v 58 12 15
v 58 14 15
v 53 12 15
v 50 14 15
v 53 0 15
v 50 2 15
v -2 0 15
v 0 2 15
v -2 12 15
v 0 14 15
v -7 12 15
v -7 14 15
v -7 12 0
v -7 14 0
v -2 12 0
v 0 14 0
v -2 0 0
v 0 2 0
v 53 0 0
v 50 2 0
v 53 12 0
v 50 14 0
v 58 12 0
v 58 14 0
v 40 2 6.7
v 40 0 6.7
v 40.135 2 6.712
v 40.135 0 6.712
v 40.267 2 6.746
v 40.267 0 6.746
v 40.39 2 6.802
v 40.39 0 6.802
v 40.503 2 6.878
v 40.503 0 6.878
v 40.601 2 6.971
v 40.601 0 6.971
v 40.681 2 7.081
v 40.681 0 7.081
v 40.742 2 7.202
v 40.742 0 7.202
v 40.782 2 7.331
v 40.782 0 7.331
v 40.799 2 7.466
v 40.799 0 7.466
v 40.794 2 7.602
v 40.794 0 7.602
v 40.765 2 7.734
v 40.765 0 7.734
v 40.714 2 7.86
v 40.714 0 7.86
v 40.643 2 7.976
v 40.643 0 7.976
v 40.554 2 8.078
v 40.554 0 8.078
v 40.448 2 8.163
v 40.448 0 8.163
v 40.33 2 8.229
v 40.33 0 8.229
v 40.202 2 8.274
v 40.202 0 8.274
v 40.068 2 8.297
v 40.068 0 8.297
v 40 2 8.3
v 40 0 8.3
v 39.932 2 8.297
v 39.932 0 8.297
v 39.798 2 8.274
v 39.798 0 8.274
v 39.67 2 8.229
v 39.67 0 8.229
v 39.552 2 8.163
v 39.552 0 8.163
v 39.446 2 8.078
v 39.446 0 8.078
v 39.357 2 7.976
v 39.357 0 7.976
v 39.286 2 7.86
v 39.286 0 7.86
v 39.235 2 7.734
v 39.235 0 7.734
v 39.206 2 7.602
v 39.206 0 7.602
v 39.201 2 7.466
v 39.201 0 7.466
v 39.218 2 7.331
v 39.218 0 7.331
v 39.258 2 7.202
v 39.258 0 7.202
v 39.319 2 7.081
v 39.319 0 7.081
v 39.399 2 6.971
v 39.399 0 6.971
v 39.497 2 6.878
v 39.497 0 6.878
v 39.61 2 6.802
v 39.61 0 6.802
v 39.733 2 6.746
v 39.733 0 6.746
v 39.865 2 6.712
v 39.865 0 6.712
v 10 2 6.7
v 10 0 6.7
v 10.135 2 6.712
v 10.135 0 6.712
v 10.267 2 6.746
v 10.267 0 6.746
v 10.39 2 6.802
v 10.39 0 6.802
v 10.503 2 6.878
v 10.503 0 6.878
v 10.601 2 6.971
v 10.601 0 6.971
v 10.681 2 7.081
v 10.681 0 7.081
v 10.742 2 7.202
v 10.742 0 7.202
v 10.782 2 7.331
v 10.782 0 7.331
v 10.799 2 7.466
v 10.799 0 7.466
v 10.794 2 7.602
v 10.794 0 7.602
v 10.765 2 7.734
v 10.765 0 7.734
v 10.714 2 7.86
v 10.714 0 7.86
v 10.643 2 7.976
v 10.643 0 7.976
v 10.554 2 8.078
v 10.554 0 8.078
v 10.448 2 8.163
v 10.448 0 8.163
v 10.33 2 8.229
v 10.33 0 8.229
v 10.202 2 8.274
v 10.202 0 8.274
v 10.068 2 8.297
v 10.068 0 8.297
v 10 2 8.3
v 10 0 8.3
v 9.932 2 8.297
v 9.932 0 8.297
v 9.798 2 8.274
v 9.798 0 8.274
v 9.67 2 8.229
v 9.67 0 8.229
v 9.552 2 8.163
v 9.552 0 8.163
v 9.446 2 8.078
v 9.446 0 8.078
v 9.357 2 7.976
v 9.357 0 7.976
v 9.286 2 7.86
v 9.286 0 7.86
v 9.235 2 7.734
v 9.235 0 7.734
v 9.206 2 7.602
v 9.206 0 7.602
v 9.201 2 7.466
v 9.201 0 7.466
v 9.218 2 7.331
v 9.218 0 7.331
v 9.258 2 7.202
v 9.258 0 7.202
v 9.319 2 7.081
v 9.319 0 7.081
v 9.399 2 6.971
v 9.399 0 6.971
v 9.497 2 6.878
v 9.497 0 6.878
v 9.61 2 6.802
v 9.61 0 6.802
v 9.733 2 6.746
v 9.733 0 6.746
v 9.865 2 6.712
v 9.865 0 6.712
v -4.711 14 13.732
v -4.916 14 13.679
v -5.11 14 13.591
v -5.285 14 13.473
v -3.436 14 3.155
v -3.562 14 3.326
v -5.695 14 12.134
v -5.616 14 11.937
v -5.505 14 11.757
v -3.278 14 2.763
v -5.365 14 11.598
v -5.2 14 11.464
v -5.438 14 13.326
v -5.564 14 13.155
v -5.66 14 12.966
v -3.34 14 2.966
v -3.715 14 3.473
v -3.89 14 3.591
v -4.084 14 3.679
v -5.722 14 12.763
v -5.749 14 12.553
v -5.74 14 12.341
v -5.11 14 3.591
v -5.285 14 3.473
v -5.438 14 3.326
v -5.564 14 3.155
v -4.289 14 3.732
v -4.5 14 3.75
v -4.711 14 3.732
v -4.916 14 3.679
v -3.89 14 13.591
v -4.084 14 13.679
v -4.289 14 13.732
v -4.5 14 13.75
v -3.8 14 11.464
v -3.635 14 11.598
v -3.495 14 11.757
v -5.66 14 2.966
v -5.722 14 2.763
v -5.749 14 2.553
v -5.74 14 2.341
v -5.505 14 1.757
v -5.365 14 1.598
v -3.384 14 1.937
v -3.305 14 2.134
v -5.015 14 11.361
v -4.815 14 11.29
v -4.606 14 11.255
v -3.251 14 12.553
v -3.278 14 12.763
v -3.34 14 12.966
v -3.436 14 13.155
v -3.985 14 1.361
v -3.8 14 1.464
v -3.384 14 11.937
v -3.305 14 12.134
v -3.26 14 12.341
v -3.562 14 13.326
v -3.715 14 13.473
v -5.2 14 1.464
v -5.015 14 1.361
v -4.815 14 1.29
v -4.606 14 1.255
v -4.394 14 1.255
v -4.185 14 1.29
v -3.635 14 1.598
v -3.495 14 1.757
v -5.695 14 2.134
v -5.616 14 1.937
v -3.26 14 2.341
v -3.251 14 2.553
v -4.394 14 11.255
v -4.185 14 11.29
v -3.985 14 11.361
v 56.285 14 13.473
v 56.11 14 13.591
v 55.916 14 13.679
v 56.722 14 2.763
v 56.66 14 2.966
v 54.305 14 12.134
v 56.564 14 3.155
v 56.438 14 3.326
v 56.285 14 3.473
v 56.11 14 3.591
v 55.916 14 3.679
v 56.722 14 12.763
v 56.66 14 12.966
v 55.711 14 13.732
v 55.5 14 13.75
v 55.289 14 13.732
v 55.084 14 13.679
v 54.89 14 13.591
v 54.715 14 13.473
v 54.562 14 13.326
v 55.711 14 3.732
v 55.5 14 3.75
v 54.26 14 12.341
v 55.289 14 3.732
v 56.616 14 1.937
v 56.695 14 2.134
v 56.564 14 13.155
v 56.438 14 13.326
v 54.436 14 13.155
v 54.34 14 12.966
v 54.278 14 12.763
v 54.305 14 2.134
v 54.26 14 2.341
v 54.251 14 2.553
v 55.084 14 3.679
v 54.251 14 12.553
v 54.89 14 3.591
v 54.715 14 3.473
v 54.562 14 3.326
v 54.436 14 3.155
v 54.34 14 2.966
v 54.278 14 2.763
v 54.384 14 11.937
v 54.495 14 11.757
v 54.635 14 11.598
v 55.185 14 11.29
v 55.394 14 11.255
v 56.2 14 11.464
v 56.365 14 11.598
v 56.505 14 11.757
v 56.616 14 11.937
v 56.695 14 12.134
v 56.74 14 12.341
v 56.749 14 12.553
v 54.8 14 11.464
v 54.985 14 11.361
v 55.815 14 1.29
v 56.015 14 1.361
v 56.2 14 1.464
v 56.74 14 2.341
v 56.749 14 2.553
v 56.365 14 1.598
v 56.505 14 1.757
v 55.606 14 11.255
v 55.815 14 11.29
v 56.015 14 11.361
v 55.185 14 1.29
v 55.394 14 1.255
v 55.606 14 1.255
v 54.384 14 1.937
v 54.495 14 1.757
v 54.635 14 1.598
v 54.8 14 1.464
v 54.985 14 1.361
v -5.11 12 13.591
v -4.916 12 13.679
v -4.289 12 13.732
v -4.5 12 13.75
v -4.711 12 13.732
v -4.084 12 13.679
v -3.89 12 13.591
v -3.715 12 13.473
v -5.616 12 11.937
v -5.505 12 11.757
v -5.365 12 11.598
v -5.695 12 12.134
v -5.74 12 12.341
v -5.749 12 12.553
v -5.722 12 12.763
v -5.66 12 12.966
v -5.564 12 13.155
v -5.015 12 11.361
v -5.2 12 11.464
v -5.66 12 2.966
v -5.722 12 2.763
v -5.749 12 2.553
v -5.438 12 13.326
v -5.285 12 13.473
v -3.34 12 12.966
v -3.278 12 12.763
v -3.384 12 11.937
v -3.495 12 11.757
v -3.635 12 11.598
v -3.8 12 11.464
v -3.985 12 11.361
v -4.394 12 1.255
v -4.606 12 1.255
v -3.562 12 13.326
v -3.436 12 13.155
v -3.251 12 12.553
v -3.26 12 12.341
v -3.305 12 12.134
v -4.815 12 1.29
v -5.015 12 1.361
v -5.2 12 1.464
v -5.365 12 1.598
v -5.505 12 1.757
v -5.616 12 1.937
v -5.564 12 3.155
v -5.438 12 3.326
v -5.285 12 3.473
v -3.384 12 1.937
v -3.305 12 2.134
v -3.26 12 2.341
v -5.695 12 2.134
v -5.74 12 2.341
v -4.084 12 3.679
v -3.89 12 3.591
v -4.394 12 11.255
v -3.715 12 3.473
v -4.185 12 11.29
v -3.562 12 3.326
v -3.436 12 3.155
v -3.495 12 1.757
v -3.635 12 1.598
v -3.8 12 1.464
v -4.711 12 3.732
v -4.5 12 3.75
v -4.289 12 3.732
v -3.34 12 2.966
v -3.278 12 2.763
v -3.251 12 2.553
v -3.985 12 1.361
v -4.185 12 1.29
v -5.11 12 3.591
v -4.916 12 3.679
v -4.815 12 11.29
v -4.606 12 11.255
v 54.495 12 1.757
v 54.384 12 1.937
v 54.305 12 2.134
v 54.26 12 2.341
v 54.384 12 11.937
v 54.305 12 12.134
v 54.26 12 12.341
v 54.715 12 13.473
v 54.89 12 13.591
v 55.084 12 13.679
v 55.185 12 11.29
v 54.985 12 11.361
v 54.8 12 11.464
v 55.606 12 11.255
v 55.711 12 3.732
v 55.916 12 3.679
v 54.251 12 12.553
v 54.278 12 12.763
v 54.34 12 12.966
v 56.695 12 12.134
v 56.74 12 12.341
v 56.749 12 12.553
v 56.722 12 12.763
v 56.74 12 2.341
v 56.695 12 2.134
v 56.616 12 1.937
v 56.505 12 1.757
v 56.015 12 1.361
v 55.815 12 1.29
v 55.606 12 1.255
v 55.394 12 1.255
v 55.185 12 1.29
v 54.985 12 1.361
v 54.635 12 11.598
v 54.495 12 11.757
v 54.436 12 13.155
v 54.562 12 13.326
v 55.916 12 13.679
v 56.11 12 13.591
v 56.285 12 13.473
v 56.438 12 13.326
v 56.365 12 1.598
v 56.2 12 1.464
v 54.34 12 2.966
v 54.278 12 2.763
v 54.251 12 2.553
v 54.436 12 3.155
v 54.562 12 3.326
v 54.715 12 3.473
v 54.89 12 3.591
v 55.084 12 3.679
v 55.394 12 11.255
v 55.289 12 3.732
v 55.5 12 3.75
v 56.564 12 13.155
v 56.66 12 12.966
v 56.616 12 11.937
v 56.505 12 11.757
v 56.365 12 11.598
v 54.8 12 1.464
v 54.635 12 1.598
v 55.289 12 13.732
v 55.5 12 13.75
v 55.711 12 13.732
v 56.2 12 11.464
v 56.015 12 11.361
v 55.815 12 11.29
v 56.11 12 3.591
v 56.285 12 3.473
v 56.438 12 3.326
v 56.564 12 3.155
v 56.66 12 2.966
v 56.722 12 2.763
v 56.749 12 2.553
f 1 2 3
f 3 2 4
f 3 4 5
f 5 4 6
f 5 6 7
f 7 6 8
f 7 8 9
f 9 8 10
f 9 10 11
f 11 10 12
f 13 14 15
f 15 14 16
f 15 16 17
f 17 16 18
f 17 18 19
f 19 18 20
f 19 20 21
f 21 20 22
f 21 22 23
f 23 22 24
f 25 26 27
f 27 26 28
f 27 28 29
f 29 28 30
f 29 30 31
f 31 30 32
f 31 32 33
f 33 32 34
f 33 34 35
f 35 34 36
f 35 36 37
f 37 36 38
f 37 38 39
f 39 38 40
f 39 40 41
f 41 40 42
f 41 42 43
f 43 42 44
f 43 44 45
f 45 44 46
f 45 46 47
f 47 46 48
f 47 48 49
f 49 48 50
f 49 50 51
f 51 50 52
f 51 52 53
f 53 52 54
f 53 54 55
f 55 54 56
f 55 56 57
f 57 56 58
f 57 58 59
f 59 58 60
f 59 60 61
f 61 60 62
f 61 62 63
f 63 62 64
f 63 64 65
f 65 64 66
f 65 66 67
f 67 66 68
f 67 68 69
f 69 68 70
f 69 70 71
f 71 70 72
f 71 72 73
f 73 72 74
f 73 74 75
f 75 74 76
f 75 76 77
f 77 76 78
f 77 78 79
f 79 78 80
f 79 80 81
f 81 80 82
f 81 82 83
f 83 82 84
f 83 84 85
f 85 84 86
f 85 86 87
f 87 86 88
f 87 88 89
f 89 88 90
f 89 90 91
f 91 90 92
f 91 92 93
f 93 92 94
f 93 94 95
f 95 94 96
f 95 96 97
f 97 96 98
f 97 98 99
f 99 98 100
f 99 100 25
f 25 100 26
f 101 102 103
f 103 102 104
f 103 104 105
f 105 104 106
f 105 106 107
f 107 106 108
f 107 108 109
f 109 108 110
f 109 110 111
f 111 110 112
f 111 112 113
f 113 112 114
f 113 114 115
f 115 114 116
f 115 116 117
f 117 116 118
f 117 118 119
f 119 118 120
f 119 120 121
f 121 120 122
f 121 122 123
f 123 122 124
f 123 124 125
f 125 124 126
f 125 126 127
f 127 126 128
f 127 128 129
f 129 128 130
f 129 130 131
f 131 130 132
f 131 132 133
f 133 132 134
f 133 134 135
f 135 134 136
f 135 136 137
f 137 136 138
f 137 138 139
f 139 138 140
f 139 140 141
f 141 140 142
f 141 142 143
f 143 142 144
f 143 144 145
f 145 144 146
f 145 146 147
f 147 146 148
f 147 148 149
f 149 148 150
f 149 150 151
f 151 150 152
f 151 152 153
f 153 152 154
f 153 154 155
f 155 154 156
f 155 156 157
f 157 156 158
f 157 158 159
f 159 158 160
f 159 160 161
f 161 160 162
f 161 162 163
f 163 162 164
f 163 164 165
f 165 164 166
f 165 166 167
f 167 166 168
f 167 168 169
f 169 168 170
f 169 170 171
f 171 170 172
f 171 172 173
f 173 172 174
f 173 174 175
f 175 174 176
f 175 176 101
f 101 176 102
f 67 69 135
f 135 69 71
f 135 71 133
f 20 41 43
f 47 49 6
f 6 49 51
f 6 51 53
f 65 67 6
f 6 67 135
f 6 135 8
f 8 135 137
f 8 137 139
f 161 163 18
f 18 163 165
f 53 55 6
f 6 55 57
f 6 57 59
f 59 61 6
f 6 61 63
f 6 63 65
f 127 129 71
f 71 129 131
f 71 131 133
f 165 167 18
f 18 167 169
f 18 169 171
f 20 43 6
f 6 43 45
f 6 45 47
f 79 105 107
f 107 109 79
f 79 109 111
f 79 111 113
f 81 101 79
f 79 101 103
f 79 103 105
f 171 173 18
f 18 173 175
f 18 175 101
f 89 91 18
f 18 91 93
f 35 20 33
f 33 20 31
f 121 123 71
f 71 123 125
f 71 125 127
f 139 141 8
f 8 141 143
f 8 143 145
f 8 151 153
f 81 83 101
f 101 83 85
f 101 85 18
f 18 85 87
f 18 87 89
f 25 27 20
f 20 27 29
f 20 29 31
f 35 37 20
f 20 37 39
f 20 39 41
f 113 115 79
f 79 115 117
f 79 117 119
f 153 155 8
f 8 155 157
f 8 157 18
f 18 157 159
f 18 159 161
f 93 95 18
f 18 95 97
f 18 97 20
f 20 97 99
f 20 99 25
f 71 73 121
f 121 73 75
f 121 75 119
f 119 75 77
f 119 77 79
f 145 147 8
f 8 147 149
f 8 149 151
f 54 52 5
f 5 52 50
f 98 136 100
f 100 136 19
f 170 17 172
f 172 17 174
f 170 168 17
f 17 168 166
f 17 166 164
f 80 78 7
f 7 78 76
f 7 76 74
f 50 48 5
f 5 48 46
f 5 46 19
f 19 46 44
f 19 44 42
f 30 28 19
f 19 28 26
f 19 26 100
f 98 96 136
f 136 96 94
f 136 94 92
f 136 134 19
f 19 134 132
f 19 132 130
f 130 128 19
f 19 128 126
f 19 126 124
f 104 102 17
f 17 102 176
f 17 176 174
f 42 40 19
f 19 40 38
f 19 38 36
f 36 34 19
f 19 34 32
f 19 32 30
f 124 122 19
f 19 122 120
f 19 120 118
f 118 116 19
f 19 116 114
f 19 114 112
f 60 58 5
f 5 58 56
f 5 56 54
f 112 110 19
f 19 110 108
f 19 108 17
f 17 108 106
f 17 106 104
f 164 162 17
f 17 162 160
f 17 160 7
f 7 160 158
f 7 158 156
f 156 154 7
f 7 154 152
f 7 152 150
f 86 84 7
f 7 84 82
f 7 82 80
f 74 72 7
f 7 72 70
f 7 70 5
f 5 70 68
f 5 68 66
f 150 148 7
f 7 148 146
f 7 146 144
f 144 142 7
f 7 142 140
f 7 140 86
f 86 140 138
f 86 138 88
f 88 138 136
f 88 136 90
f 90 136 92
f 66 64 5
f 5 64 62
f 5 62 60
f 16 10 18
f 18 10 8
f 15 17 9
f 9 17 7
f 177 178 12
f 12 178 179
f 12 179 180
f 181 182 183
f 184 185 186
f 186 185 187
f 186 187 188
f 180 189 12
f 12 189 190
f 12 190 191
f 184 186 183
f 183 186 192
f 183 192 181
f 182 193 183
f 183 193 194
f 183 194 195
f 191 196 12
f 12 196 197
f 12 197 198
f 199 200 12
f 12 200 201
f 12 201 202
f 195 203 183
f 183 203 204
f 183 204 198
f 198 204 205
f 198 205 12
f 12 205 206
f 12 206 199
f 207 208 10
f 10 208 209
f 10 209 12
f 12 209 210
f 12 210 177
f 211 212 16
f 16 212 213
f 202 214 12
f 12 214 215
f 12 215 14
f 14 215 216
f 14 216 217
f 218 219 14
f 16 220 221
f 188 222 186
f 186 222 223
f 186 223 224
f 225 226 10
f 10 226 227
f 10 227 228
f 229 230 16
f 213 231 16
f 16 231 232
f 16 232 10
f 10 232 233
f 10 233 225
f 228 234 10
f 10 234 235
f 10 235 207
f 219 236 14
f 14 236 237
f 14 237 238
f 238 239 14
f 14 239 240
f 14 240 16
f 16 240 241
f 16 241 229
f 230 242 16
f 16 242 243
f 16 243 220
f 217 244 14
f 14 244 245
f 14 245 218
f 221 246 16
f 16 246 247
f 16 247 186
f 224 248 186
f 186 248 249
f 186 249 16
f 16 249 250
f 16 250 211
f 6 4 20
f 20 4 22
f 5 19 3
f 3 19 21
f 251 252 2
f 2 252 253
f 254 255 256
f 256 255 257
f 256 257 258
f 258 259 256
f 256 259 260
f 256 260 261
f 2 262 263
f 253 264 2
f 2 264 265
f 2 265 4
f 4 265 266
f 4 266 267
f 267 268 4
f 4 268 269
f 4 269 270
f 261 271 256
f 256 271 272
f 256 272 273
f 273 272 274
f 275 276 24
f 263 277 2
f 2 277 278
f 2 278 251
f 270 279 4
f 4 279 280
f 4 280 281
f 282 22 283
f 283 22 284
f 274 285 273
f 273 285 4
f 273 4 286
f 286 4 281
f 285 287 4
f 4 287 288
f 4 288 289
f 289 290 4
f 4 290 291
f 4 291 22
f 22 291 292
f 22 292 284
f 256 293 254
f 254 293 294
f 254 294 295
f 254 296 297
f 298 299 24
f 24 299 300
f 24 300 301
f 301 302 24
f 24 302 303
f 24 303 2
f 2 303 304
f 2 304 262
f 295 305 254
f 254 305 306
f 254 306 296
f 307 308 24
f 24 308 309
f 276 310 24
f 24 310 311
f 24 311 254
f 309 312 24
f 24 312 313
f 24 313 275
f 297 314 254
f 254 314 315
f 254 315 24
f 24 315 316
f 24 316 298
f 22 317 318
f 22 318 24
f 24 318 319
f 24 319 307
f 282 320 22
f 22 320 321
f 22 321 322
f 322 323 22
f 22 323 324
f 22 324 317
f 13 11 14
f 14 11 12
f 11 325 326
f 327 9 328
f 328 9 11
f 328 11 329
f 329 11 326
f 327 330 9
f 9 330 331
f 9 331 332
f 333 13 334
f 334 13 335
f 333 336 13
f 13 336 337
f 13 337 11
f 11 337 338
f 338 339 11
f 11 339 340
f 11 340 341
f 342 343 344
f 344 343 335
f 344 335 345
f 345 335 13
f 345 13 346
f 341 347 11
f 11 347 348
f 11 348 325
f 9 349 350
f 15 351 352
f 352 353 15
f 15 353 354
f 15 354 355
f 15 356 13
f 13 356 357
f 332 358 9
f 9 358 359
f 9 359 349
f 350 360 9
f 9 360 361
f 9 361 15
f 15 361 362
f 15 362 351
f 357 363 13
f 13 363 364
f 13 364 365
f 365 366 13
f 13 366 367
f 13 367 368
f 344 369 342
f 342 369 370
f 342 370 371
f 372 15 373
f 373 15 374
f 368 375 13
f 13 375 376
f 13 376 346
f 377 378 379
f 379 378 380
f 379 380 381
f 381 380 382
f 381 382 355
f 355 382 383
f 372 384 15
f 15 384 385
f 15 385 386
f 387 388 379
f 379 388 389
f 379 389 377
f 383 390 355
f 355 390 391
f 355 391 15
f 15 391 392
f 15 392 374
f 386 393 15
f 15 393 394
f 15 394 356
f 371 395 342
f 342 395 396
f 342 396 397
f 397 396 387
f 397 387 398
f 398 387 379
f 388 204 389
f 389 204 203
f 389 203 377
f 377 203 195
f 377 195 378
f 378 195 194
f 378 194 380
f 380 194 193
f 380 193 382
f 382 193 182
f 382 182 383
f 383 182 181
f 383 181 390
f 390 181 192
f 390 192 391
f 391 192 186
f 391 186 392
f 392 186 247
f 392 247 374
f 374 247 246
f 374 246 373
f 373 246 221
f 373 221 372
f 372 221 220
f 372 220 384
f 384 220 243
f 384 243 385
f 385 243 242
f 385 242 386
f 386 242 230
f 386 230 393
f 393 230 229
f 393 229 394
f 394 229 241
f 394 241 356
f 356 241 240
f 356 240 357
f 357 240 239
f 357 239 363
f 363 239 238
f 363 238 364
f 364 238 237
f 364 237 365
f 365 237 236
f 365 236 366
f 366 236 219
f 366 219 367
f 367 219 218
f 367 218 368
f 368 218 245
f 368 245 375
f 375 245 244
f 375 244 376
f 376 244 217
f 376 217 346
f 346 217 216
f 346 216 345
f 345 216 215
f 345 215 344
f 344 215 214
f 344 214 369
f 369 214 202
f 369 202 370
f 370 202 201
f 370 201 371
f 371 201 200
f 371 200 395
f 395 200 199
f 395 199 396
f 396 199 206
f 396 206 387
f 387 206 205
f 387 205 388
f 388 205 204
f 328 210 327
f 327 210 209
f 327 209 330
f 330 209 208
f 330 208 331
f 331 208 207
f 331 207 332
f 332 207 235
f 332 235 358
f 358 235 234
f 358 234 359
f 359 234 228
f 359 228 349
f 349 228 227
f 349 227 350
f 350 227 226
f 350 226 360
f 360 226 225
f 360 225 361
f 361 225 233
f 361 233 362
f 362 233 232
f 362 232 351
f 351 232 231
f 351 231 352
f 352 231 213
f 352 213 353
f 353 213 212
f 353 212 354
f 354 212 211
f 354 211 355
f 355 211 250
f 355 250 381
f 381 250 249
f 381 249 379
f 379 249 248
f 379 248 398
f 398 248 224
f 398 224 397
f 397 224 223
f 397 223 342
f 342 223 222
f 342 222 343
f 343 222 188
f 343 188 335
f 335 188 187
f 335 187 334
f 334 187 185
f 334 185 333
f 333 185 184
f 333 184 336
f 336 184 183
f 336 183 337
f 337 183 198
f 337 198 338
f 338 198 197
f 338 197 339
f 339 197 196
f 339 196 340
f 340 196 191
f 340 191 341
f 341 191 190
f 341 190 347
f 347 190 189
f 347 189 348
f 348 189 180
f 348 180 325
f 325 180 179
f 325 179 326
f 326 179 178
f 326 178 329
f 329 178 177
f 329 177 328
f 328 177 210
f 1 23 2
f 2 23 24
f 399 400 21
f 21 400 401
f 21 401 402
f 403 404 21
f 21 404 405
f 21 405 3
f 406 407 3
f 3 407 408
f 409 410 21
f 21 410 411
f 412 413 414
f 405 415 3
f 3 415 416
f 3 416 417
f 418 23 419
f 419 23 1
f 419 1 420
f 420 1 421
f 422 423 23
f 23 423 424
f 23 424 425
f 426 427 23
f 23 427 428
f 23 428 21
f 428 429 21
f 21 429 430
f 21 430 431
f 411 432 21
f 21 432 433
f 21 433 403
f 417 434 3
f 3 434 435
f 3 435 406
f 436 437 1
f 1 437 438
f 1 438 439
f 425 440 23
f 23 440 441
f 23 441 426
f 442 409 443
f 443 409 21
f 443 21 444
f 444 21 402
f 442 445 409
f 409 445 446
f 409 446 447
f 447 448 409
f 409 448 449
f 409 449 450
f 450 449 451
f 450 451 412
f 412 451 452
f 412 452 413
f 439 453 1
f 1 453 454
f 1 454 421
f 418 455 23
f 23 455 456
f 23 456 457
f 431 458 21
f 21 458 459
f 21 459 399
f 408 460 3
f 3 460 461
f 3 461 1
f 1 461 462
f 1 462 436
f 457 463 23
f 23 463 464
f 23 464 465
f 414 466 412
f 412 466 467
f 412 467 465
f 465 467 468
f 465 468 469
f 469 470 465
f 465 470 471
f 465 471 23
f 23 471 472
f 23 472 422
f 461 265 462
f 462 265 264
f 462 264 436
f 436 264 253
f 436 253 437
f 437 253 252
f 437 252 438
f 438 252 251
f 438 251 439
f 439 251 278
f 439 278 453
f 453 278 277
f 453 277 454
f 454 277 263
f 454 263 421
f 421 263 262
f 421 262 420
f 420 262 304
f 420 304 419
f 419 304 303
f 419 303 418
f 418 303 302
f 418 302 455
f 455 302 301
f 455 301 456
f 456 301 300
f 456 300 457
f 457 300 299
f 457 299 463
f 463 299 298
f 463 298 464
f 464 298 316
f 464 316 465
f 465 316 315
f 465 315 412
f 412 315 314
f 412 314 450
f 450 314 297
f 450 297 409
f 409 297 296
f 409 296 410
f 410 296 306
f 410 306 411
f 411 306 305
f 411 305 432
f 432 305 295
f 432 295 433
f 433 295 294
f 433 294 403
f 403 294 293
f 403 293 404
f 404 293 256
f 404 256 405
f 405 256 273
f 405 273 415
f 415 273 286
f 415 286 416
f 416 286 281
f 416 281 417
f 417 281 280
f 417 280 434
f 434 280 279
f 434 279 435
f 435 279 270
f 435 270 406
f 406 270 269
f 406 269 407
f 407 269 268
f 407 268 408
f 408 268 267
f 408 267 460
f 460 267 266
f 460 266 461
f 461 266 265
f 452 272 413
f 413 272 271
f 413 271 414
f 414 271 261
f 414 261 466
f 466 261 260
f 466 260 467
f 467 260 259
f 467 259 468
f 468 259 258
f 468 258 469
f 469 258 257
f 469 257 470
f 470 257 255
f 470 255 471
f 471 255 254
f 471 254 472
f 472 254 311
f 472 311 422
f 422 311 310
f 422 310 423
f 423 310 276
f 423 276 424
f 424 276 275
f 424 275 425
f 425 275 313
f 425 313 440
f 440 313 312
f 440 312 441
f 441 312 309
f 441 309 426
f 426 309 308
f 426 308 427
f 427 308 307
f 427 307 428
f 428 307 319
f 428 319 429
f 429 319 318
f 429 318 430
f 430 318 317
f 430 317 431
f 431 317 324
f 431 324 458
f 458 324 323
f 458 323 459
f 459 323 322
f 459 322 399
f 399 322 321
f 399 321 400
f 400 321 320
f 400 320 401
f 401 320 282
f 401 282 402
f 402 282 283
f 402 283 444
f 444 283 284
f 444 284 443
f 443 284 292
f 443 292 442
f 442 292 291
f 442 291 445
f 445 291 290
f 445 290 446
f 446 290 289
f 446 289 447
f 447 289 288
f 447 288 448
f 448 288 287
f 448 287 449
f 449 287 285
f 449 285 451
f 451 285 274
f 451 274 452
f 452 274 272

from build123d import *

# Parameters (mm, degrees)
SKETCH_1_W      = 50
SKETCH_1_H      = 15
SKETCH_1_R      = 0.8
EXTRUDE_2_DEPTH = 2
SKETCH_1_5_W    = 2
SKETCH_1_5_H    = 15
SKETCH_1_5_W_2  = 3
EXTRUDE_3_DEPTH = 14
EXTRUDE_START   = 14
SKETCH_1_6_R    = 1.25
EXTRUDE_4_DEPTH = 2


with BuildPart() as part:
    # 草图1 → 凸台-拉伸2 (new body)
    with BuildSketch(Plane(origin=(0, 0, 0), x_dir=(1, 0, 0), z_dir=(0, 1, 0))):
        with Locations((25, -7.5)):
            Rectangle(SKETCH_1_W, SKETCH_1_H)
        with Locations(Location((10, -7.5, 0), (0, 0, 270))):
            Circle(SKETCH_1_R, mode=Mode.SUBTRACT)
        with Locations(Location((40, -7.5, 0), (0, 0, 270))):
            Circle(SKETCH_1_R, mode=Mode.SUBTRACT)
    extrude(amount=EXTRUDE_2_DEPTH)

    # 草图1<5> → 凸台-拉伸3 (add)
    with BuildSketch(Plane(origin=(0, 0, 0), x_dir=(1, 0, 0), z_dir=(0, 1, 0))):
        with Locations((-1, -7.5)):
            Rectangle(SKETCH_1_5_W, SKETCH_1_5_H)
        with Locations((51.5, -7.5)):
            Rectangle(SKETCH_1_5_W_2, SKETCH_1_5_H)
    extrude(amount=EXTRUDE_3_DEPTH)

    # 草图1<6> → 凸台-拉伸4 (add)
    # profile 1 of 2: a face of its own
    with BuildSketch(Plane(origin=(0, 0, 0), x_dir=(1, 0, 0), z_dir=(0, 1, 0)).offset(EXTRUDE_START)):
        Polygon((-2, 0), (-4.5, 0), (-7, 0), (-7, -15), (-4.5, -15), (-2, -15), align=None)
        with Locations(Location((-4.5, -12.5, 0), (0, 0, 270))):
            Circle(SKETCH_1_6_R, mode=Mode.SUBTRACT)
        with Locations(Location((-4.5, -2.5, 0), (0, 0, 270))):
            Circle(SKETCH_1_6_R, mode=Mode.SUBTRACT)
    # profile 2 of 2: a face of its own
    with BuildSketch(Plane(origin=(0, 0, 0), x_dir=(1, 0, 0), z_dir=(0, 1, 0)).offset(EXTRUDE_START)):
        Polygon((55.5, 0), (53, 0), (53, -15), (58, -15), (58, 0), align=None)
        with Locations(Location((55.5, -12.5, 0), (0, 0, 270))):
            Circle(SKETCH_1_6_R, mode=Mode.SUBTRACT)
        with Locations(Location((55.5, -2.5, 0), (0, 0, 270))):
            Circle(SKETCH_1_6_R, mode=Mode.SUBTRACT)
    extrude(amount=-EXTRUDE_4_DEPTH)


solid = part.part
